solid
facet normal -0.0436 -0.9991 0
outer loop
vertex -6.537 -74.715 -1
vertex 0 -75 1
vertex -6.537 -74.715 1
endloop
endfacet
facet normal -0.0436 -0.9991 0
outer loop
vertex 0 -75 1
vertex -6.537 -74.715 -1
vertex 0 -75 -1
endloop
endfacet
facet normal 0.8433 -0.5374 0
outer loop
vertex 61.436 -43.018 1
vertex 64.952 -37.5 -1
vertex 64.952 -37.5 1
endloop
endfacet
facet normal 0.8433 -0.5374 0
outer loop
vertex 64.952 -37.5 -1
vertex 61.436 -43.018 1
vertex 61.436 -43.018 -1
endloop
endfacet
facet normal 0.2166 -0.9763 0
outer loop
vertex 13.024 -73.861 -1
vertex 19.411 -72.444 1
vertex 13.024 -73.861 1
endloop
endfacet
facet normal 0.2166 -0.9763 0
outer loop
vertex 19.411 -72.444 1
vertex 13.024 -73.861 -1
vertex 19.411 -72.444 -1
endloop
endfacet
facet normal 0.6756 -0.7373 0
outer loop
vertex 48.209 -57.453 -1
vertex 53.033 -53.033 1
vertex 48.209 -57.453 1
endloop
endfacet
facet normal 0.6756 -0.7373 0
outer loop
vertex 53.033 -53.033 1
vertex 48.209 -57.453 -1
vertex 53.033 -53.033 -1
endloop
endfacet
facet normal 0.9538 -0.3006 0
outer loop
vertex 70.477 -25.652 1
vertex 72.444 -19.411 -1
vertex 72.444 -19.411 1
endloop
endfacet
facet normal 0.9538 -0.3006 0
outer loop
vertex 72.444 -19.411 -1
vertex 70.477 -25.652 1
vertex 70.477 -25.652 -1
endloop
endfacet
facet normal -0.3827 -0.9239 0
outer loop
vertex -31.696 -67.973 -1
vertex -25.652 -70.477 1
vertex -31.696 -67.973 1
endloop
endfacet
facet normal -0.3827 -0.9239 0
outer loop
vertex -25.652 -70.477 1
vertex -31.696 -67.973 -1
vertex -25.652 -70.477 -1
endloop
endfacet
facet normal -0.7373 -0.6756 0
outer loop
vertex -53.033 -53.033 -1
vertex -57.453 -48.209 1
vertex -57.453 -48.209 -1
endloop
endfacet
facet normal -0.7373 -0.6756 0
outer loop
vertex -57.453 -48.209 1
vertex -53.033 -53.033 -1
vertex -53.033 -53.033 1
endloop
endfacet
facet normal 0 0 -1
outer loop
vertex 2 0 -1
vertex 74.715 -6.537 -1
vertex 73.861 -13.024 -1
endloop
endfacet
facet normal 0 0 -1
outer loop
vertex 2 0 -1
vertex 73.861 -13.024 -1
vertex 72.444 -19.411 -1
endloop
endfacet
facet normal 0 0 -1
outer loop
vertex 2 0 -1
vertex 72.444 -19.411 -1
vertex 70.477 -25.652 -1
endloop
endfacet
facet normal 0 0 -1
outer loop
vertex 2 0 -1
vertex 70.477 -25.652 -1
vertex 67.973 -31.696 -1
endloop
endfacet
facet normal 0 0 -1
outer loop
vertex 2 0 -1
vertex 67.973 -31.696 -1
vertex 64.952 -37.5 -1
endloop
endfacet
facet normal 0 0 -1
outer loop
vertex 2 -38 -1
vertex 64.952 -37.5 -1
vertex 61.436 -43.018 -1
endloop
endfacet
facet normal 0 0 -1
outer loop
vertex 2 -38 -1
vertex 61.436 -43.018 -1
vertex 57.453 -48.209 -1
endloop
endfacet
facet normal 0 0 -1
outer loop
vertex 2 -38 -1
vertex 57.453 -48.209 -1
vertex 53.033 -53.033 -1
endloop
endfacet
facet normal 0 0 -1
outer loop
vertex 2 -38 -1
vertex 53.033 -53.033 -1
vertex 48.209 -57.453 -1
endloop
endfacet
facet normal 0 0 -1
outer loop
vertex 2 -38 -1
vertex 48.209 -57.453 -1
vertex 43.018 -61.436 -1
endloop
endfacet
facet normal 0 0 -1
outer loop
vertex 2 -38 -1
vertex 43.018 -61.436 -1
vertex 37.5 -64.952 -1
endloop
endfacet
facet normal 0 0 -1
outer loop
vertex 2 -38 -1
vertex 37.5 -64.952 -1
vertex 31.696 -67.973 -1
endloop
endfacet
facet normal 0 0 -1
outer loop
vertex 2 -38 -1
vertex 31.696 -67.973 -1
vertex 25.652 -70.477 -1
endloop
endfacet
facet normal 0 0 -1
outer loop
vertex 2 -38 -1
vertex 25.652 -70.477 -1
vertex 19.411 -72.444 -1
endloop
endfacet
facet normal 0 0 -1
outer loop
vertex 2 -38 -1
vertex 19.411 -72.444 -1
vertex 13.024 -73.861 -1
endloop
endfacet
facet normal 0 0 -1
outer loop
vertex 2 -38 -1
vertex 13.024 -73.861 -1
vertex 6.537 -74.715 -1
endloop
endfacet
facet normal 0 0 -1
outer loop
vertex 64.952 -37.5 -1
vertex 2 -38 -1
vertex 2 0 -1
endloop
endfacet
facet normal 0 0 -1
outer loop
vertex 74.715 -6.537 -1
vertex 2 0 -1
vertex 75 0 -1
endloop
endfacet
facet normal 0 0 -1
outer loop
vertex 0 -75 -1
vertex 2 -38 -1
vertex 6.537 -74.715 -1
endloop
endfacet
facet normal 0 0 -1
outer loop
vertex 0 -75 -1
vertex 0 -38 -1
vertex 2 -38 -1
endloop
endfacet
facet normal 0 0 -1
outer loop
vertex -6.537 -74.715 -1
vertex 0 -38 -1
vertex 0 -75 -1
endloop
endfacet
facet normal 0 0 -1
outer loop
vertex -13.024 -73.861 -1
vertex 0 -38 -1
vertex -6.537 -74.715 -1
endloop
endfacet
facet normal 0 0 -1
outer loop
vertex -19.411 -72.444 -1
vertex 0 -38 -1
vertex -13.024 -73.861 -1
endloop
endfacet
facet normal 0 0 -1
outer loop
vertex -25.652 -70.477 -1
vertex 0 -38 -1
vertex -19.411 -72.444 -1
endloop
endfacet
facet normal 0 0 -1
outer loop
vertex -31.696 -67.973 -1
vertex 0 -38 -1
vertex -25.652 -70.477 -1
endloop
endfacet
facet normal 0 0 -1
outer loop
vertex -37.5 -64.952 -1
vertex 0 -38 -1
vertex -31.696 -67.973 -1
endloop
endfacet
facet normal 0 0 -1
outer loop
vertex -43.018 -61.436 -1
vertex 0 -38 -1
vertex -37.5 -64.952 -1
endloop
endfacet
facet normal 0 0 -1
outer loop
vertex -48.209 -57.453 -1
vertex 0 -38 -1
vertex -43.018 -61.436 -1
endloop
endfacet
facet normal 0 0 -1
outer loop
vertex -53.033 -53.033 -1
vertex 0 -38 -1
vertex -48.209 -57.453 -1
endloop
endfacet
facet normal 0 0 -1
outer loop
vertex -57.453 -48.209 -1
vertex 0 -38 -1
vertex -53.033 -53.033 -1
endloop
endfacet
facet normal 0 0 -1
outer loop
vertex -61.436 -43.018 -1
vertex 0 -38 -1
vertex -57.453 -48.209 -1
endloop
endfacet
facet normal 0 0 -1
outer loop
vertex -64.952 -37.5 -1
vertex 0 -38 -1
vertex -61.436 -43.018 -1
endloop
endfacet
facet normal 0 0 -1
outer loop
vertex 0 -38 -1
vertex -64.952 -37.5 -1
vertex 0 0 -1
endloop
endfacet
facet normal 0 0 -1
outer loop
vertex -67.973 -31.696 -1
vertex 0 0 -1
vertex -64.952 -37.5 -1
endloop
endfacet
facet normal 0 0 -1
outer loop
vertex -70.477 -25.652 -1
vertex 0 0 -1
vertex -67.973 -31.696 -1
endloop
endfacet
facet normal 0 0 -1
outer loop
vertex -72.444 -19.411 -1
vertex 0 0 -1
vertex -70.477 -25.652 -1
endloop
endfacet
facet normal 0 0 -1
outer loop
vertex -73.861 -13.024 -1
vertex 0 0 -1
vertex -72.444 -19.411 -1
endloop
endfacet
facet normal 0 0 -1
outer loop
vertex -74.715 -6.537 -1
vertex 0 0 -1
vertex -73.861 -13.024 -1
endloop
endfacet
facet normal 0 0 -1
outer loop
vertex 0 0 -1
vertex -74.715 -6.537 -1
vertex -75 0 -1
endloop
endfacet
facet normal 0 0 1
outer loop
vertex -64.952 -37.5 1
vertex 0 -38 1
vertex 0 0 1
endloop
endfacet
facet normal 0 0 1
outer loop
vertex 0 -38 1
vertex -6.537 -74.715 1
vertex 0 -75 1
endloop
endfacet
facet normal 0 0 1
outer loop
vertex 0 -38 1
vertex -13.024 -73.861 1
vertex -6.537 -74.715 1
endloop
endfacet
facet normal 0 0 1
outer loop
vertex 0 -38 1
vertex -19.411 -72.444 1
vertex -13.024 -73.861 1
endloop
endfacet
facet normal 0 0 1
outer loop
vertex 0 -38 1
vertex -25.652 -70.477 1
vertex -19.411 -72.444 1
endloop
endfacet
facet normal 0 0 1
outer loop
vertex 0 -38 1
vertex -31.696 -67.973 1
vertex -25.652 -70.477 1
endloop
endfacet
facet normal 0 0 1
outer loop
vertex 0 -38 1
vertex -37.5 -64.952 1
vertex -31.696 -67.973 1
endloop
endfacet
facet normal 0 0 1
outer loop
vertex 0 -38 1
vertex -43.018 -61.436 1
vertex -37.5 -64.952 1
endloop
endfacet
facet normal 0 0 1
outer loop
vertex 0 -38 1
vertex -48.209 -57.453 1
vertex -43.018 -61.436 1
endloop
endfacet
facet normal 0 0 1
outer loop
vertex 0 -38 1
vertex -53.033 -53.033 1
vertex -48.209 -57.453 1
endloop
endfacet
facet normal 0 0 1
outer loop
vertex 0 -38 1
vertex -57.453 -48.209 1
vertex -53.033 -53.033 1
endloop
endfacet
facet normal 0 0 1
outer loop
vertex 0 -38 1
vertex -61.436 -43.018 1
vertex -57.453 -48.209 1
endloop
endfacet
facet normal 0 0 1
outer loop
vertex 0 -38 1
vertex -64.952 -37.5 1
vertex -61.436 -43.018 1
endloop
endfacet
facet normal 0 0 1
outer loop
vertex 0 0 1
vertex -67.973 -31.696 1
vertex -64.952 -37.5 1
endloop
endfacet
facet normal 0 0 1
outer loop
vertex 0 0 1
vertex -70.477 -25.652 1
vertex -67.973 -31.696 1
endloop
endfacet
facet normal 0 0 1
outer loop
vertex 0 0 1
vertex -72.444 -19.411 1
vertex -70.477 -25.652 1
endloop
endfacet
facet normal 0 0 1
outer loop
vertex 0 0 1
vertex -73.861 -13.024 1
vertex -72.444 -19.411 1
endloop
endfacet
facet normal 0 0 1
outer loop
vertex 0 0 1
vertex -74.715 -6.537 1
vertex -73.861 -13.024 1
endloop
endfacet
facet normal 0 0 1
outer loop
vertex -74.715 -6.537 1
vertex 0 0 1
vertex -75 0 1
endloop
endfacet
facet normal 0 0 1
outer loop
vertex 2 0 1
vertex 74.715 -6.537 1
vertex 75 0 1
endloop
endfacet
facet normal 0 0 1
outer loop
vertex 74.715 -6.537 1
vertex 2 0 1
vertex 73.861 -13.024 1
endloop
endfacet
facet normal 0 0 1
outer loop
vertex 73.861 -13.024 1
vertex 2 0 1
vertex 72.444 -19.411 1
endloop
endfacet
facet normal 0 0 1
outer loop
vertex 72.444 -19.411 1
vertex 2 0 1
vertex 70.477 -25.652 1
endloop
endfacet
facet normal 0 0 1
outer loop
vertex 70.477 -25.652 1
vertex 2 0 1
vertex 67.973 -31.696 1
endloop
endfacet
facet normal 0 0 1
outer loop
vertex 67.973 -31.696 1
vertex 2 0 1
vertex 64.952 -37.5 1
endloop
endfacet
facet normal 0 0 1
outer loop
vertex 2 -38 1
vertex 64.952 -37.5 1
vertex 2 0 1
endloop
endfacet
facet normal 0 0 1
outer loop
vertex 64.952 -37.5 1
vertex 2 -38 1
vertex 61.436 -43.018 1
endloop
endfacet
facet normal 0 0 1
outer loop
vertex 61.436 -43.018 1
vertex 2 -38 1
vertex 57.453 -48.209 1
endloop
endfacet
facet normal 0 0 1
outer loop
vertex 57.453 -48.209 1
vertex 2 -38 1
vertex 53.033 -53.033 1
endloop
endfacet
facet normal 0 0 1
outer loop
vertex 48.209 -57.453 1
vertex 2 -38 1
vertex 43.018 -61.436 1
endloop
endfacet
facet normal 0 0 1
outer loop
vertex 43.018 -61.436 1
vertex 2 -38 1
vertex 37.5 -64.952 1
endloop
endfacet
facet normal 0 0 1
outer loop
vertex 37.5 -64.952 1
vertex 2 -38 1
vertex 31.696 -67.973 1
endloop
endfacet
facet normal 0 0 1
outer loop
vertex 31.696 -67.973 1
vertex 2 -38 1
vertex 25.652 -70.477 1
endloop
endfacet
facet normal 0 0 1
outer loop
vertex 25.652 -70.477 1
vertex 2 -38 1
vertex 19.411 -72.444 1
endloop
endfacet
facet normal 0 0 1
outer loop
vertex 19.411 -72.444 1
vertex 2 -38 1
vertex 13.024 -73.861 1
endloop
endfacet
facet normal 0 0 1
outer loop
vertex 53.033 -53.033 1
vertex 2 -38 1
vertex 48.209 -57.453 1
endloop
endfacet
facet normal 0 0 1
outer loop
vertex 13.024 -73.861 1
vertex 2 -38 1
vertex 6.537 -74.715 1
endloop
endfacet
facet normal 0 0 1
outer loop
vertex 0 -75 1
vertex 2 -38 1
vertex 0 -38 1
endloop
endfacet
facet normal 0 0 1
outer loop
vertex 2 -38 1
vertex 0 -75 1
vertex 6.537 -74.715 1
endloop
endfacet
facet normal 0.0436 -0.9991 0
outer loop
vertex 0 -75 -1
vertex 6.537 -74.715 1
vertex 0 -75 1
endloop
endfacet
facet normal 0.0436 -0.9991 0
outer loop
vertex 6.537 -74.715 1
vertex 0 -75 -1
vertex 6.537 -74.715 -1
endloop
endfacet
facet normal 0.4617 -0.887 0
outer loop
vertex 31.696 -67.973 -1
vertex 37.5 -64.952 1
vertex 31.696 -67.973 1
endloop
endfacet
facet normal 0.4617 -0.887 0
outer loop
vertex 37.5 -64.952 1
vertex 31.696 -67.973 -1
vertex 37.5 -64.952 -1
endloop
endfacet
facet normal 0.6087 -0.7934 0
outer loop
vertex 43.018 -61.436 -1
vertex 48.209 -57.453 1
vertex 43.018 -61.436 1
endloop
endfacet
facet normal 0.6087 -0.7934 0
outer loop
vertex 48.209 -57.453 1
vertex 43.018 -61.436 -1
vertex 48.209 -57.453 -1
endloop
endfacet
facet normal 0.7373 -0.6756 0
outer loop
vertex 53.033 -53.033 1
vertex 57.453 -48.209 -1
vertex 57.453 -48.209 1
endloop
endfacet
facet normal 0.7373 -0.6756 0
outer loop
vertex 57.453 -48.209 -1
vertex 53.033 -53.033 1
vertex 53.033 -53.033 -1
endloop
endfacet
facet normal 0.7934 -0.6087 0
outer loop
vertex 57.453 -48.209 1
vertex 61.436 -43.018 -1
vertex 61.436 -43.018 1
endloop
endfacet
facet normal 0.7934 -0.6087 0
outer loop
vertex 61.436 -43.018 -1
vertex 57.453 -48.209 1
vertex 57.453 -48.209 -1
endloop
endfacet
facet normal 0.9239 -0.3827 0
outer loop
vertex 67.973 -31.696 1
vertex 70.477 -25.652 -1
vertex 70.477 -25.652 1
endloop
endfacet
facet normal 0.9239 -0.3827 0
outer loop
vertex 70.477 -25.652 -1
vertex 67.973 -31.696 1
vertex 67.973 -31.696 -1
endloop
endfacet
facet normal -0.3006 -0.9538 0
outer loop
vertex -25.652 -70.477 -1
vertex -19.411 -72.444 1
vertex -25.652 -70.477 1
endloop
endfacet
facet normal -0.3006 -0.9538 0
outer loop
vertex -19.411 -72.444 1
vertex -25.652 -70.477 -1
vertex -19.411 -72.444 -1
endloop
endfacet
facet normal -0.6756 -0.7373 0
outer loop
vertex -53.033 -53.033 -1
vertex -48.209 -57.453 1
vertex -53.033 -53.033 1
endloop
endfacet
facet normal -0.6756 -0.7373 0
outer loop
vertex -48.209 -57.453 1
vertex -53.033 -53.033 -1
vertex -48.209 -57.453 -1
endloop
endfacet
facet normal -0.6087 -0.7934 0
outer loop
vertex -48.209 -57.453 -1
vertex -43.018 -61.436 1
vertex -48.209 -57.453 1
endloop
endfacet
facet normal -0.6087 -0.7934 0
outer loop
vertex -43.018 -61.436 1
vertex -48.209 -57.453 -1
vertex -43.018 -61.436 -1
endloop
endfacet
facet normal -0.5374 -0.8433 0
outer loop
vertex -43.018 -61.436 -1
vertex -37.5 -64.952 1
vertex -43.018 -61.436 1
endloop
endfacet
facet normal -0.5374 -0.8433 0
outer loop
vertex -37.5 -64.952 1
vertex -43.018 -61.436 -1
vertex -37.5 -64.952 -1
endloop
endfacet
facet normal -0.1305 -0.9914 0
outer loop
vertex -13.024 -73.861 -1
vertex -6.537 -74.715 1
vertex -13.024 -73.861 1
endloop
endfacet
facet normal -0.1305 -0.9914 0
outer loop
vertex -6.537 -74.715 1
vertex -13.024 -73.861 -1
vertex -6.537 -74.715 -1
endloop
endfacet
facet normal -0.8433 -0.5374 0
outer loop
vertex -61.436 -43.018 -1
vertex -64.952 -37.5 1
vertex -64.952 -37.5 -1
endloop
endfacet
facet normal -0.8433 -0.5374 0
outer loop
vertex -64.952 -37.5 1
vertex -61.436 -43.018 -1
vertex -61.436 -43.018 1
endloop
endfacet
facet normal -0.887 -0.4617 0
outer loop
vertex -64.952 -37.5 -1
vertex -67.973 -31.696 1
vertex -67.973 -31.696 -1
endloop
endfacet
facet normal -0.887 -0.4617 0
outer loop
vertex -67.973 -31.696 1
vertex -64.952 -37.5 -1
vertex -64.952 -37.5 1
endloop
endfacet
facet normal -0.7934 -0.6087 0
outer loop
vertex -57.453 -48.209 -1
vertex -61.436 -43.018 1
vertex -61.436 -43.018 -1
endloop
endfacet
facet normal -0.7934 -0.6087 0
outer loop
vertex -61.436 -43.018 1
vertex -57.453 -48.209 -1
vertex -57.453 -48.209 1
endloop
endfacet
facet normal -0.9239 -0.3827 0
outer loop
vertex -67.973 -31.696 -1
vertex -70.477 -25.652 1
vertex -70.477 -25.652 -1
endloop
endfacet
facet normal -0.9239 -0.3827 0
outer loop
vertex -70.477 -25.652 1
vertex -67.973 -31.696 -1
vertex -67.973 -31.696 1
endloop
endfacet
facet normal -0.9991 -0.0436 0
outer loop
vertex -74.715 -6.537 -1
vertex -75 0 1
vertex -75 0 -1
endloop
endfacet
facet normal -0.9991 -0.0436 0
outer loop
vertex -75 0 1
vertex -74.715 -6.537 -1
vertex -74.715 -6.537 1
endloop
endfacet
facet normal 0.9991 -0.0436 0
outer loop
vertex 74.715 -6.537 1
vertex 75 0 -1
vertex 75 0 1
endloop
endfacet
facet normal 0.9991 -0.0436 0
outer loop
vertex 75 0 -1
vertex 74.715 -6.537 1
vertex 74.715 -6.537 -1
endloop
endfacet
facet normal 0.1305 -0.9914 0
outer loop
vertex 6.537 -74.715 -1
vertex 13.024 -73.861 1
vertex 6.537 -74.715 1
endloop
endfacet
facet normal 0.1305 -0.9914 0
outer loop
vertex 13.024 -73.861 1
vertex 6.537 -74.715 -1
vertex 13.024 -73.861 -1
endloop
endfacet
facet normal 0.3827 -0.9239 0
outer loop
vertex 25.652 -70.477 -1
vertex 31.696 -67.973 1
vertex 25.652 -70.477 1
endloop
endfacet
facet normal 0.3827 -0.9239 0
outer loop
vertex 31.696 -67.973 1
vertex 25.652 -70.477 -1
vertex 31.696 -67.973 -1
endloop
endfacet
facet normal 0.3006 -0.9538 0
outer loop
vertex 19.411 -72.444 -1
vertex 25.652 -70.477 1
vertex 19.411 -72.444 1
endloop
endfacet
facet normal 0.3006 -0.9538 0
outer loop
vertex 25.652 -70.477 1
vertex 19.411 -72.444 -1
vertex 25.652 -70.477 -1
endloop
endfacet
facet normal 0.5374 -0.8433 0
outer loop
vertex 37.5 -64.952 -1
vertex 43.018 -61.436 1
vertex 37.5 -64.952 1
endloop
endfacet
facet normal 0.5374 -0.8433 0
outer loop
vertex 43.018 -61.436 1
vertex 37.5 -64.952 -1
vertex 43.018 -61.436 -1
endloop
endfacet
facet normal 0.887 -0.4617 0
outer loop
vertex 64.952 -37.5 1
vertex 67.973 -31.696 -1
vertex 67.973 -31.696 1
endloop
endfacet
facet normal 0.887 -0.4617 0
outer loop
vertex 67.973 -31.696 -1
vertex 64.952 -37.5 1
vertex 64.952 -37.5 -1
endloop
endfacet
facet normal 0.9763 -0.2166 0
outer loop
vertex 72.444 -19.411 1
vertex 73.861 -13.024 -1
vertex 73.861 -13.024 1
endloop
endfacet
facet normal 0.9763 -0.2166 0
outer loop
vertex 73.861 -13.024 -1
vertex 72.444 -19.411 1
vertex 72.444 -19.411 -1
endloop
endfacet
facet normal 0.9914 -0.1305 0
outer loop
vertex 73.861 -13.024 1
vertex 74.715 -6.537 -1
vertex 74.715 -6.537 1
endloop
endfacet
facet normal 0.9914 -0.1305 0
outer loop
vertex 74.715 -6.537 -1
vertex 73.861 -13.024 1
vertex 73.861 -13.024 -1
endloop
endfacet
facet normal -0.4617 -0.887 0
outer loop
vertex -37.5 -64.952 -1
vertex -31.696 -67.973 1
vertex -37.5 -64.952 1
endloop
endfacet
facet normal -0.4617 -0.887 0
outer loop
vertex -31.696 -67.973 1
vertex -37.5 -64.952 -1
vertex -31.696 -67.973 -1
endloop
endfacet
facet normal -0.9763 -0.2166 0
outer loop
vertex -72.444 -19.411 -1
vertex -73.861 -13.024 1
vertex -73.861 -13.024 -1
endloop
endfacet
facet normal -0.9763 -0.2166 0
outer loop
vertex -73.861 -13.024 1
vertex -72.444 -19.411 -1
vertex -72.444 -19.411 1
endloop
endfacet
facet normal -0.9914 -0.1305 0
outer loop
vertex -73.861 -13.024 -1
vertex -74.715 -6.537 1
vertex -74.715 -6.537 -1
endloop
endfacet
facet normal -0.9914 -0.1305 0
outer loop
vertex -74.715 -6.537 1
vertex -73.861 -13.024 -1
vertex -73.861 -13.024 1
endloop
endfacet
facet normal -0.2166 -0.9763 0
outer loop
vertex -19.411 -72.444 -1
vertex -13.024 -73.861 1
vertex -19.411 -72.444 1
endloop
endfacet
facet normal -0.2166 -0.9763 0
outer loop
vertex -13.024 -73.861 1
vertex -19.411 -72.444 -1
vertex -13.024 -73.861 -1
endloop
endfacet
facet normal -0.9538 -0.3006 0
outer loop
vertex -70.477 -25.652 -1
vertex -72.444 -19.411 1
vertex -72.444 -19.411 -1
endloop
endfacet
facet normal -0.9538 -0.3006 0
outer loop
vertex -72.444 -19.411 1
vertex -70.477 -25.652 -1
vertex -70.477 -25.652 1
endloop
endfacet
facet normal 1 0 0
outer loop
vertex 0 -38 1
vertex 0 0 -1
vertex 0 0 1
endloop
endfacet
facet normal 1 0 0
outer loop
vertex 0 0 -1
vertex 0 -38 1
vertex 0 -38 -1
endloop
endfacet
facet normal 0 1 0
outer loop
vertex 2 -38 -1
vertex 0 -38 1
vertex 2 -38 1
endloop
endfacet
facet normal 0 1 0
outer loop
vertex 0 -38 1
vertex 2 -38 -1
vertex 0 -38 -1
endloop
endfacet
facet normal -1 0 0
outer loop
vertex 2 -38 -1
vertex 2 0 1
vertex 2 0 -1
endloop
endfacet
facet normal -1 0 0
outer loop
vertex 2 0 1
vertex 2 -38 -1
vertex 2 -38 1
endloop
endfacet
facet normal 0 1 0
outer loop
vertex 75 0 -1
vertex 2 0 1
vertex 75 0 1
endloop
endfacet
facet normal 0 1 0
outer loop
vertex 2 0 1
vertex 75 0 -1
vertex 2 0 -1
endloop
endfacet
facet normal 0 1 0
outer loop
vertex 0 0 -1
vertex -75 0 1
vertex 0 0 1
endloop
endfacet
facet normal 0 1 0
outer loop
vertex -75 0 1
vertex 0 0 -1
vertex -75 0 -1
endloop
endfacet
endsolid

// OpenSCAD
// CSG-modules.scad - Basic usage of modules, if, color, $fs/$fa

// Global resolution
$fs = 0.1;  // Don't generate smaller facets than 0.1 mm
$fa = 5;    // Don't generate larger angles than 5 degrees

difference(){
    union(){
    base();/*
        riser1();
        riser2();
            rotate([0,0,90]) riser1();
            rotate([0,0,270]) riser1();
            rotate([0,0,90]) riser2();
            rotate([0,0,270]) riser2();*/        
    }
    //baseSlot();
    rotate([0,0,90]) translate([37.5,0,0]) baseSlot();
    rotate([0,0,270]) translate([37.5,0,0]) baseSlot();
    darkside();

}


//rotate([0,0,90]) translate([37.5,0,0]) baseASlot();

module base() {
    color("Blue") cylinder(h=2, r=75, center=true);
    }
    
module baseSlot() {
    color("Red") translate([0,0,-3]) cube([76, 2, 6]); 
    }
   
module riser1() {
    color("Yellow") translate([37.5,2,1]) cube([34,2,4]);
    }    
    
module riser2() {
    color("Green") translate([37.5,-2,1]) cube([34,2,4]);
    }
    
module darkside() {
    translate([-250,0,-250])cube([500,500,500]);
    }
